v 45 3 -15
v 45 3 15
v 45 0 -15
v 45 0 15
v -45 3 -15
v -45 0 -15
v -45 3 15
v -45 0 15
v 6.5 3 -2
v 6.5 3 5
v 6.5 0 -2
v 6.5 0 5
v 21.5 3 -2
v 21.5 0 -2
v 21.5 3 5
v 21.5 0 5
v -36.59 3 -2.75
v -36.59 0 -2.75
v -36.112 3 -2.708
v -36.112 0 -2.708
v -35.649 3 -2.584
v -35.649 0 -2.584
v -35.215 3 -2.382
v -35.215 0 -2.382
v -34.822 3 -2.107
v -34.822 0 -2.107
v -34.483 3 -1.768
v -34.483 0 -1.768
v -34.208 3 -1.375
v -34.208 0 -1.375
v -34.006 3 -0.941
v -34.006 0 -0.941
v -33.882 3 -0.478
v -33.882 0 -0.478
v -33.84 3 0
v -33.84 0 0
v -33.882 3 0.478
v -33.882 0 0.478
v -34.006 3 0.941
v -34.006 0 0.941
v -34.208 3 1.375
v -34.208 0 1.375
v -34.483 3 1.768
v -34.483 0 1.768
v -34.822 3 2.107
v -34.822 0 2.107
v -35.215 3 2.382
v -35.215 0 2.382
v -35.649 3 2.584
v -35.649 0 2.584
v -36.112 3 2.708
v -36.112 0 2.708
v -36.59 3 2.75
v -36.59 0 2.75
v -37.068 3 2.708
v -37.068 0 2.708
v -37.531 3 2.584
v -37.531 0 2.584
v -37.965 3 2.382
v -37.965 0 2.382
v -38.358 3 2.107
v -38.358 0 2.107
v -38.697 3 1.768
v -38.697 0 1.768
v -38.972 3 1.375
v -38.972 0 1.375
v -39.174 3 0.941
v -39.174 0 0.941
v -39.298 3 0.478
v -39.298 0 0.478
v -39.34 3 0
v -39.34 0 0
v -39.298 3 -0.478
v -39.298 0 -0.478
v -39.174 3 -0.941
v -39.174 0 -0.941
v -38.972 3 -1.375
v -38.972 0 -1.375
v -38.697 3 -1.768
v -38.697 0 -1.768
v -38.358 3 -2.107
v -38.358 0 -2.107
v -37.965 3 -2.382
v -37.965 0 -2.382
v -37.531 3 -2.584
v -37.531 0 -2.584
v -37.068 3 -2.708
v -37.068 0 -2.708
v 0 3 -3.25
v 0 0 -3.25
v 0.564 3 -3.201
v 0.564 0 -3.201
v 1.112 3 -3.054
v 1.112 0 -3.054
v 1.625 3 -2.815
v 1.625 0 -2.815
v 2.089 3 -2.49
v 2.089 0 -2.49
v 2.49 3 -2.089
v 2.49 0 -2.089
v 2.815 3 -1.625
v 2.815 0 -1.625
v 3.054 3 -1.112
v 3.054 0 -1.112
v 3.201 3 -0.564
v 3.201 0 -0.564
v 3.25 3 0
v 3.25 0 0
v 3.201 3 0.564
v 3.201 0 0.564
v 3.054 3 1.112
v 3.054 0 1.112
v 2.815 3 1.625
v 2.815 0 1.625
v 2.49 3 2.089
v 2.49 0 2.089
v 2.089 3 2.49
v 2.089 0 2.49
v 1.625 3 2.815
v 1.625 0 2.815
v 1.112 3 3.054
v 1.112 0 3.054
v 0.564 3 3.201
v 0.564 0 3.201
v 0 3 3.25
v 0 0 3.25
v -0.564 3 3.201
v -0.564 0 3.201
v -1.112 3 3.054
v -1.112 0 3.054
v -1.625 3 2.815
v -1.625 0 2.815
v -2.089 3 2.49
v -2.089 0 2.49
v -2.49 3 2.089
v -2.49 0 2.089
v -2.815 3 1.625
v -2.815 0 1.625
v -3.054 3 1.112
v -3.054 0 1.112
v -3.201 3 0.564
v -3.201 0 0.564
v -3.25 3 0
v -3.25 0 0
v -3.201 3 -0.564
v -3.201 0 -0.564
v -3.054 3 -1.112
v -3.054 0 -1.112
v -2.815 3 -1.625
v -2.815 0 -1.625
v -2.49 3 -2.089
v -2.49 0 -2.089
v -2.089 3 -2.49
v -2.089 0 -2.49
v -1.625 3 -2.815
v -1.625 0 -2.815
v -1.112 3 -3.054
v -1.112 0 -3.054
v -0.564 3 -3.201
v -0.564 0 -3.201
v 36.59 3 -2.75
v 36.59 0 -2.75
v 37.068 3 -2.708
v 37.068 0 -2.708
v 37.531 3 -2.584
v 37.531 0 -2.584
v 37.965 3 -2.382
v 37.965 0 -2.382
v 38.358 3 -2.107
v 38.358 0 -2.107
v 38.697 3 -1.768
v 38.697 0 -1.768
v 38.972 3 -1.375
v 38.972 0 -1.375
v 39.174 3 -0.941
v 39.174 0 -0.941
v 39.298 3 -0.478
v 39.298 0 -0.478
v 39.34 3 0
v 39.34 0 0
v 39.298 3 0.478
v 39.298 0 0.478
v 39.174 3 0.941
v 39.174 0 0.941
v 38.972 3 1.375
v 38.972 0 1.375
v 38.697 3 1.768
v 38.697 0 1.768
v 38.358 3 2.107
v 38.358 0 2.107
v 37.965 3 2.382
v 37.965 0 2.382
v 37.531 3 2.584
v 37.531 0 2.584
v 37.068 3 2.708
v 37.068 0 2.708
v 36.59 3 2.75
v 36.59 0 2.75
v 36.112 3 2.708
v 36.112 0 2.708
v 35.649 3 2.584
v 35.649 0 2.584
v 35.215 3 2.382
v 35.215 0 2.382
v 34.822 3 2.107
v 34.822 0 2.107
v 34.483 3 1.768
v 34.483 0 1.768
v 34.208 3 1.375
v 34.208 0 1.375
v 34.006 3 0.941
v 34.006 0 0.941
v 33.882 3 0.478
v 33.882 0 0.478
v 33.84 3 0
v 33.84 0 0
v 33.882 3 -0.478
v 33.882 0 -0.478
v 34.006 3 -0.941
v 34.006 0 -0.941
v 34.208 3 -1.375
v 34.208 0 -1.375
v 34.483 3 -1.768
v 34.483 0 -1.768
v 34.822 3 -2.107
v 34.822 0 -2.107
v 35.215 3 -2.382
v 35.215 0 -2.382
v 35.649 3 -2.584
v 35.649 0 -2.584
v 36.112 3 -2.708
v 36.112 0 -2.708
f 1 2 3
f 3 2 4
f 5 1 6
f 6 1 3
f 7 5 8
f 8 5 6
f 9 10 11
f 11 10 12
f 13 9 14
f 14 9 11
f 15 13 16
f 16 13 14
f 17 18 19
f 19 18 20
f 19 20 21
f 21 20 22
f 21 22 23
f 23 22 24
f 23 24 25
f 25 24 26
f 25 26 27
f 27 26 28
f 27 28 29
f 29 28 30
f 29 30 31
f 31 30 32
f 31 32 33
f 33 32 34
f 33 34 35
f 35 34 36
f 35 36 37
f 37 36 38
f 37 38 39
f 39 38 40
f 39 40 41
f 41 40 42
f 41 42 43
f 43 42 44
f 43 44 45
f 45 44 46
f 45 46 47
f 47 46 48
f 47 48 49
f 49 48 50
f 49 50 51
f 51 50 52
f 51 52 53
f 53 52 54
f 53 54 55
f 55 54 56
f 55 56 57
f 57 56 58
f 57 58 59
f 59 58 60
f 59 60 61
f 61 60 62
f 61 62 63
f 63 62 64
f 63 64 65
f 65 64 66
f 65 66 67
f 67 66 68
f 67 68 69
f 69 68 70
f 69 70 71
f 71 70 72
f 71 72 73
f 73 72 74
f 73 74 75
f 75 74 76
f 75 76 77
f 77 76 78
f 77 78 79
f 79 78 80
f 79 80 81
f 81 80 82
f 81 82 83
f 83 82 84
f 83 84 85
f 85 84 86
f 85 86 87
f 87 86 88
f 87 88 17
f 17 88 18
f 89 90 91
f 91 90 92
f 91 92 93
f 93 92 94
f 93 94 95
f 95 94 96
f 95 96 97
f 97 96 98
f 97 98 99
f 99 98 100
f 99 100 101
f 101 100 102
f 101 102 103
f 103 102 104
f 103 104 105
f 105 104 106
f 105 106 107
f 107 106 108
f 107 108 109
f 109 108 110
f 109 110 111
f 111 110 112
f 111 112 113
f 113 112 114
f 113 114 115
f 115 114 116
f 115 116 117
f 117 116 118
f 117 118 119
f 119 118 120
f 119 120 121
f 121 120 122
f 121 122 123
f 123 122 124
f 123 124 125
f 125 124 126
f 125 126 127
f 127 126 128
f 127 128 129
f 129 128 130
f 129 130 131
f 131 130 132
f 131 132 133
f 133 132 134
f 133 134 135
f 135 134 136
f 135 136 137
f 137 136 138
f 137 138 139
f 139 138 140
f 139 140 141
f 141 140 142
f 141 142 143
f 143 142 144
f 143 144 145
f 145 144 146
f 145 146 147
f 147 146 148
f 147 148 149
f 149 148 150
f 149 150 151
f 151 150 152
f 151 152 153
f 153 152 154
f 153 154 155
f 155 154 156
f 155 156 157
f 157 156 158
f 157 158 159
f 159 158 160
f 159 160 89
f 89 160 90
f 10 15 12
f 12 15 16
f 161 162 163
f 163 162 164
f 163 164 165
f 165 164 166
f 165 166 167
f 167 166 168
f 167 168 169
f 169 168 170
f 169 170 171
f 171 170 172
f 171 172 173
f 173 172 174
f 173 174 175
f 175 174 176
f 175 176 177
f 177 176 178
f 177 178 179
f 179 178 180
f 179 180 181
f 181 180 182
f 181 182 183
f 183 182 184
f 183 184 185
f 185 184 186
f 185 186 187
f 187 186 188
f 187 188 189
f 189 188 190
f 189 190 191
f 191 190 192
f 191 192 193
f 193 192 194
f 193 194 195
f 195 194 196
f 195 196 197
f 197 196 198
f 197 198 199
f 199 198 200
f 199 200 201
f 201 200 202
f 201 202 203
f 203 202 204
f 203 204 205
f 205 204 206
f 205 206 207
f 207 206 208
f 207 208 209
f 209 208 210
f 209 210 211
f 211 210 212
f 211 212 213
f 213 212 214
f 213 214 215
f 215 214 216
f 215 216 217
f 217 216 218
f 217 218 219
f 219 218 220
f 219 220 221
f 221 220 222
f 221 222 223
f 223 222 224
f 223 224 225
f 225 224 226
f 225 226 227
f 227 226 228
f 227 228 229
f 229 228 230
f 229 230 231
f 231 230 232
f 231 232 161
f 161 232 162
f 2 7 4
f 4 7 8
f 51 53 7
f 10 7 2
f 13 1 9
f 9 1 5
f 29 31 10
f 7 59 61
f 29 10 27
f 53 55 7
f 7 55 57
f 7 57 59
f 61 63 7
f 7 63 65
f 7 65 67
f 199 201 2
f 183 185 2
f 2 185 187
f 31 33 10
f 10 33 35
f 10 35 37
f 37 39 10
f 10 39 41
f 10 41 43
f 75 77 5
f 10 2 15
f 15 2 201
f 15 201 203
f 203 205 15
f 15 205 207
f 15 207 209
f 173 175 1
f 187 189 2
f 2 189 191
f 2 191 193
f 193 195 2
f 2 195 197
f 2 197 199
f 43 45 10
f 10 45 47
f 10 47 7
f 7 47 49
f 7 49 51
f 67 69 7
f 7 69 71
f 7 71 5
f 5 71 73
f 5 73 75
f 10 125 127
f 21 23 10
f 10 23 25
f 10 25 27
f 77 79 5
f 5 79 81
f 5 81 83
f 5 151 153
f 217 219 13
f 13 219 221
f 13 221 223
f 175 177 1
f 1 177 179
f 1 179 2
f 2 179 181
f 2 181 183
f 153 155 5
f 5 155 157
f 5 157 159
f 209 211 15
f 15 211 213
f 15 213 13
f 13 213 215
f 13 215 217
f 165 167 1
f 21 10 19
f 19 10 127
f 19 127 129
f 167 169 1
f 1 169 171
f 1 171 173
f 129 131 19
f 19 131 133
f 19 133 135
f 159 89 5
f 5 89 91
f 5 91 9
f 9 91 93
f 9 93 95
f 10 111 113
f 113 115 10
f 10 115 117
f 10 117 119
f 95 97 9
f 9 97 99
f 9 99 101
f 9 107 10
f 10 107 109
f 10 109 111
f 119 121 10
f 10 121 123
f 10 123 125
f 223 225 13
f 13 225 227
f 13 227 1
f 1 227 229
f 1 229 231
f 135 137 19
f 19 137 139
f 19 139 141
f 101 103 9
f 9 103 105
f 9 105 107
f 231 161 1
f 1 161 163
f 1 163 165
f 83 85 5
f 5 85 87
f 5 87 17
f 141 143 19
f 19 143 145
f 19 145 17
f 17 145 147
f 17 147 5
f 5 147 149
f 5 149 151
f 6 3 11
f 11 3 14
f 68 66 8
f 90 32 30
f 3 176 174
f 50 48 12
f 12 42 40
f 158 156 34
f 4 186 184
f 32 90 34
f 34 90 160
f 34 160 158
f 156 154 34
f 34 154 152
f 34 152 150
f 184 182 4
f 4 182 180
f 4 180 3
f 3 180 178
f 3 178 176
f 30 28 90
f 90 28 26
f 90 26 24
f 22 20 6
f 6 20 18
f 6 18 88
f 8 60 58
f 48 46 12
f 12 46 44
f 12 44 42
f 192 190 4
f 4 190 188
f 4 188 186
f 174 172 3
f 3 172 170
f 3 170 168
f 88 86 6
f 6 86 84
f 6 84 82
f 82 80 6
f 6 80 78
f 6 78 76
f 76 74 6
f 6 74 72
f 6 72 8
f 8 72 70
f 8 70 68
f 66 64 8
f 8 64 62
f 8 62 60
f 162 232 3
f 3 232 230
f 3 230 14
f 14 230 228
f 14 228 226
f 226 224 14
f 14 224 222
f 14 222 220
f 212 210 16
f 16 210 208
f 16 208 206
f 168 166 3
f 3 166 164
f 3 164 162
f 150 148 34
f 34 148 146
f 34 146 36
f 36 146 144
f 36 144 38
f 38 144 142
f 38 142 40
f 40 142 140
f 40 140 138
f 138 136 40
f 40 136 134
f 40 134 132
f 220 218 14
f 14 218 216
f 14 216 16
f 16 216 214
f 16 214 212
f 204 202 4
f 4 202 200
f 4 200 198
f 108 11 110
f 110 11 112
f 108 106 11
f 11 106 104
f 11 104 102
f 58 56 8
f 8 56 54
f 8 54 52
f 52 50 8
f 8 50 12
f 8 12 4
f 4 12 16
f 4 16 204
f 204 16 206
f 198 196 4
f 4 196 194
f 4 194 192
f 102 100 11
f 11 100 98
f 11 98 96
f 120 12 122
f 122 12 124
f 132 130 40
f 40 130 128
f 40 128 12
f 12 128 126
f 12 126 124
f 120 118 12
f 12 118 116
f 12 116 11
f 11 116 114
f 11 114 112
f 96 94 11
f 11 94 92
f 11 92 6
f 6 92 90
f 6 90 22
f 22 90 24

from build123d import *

# Parameters (mm, degrees)
SKETCH_1_W      = 90
SKETCH_1_H      = 30
SKETCH_1_R      = 2.75
EXTRUDE_1_DEPTH = 3


with BuildPart() as part:
    # 草圖1 → 填料-伸長1 (new body)
    with BuildSketch(Plane(origin=(0, 0, 0), x_dir=(1, 0, 0), z_dir=(0, 1, 0))):
        Rectangle(SKETCH_1_W, SKETCH_1_H)
        Polygon((6.5, -5), (6.5, 0), (6.5, 2), (21.5, 2), (21.5, 0), (21.5, -5), align=None, mode=Mode.SUBTRACT)
        with Locations((-36.59, 0)):
            Circle(SKETCH_1_R, mode=Mode.SUBTRACT)
        with BuildLine():
            ThreePointArc((3.25, 0), (0, -3.25), (-3.25, 0))
            ThreePointArc((-3.25, 0), (0, 3.25), (3.25, 0))
        make_face(mode=Mode.SUBTRACT)
        with BuildLine():
            ThreePointArc((39.34, 0), (36.59, -2.75), (33.84, 0))
            ThreePointArc((33.84, 0), (36.59, 2.75), (39.34, 0))
        make_face(mode=Mode.SUBTRACT)
    extrude(amount=EXTRUDE_1_DEPTH)


solid = part.part
